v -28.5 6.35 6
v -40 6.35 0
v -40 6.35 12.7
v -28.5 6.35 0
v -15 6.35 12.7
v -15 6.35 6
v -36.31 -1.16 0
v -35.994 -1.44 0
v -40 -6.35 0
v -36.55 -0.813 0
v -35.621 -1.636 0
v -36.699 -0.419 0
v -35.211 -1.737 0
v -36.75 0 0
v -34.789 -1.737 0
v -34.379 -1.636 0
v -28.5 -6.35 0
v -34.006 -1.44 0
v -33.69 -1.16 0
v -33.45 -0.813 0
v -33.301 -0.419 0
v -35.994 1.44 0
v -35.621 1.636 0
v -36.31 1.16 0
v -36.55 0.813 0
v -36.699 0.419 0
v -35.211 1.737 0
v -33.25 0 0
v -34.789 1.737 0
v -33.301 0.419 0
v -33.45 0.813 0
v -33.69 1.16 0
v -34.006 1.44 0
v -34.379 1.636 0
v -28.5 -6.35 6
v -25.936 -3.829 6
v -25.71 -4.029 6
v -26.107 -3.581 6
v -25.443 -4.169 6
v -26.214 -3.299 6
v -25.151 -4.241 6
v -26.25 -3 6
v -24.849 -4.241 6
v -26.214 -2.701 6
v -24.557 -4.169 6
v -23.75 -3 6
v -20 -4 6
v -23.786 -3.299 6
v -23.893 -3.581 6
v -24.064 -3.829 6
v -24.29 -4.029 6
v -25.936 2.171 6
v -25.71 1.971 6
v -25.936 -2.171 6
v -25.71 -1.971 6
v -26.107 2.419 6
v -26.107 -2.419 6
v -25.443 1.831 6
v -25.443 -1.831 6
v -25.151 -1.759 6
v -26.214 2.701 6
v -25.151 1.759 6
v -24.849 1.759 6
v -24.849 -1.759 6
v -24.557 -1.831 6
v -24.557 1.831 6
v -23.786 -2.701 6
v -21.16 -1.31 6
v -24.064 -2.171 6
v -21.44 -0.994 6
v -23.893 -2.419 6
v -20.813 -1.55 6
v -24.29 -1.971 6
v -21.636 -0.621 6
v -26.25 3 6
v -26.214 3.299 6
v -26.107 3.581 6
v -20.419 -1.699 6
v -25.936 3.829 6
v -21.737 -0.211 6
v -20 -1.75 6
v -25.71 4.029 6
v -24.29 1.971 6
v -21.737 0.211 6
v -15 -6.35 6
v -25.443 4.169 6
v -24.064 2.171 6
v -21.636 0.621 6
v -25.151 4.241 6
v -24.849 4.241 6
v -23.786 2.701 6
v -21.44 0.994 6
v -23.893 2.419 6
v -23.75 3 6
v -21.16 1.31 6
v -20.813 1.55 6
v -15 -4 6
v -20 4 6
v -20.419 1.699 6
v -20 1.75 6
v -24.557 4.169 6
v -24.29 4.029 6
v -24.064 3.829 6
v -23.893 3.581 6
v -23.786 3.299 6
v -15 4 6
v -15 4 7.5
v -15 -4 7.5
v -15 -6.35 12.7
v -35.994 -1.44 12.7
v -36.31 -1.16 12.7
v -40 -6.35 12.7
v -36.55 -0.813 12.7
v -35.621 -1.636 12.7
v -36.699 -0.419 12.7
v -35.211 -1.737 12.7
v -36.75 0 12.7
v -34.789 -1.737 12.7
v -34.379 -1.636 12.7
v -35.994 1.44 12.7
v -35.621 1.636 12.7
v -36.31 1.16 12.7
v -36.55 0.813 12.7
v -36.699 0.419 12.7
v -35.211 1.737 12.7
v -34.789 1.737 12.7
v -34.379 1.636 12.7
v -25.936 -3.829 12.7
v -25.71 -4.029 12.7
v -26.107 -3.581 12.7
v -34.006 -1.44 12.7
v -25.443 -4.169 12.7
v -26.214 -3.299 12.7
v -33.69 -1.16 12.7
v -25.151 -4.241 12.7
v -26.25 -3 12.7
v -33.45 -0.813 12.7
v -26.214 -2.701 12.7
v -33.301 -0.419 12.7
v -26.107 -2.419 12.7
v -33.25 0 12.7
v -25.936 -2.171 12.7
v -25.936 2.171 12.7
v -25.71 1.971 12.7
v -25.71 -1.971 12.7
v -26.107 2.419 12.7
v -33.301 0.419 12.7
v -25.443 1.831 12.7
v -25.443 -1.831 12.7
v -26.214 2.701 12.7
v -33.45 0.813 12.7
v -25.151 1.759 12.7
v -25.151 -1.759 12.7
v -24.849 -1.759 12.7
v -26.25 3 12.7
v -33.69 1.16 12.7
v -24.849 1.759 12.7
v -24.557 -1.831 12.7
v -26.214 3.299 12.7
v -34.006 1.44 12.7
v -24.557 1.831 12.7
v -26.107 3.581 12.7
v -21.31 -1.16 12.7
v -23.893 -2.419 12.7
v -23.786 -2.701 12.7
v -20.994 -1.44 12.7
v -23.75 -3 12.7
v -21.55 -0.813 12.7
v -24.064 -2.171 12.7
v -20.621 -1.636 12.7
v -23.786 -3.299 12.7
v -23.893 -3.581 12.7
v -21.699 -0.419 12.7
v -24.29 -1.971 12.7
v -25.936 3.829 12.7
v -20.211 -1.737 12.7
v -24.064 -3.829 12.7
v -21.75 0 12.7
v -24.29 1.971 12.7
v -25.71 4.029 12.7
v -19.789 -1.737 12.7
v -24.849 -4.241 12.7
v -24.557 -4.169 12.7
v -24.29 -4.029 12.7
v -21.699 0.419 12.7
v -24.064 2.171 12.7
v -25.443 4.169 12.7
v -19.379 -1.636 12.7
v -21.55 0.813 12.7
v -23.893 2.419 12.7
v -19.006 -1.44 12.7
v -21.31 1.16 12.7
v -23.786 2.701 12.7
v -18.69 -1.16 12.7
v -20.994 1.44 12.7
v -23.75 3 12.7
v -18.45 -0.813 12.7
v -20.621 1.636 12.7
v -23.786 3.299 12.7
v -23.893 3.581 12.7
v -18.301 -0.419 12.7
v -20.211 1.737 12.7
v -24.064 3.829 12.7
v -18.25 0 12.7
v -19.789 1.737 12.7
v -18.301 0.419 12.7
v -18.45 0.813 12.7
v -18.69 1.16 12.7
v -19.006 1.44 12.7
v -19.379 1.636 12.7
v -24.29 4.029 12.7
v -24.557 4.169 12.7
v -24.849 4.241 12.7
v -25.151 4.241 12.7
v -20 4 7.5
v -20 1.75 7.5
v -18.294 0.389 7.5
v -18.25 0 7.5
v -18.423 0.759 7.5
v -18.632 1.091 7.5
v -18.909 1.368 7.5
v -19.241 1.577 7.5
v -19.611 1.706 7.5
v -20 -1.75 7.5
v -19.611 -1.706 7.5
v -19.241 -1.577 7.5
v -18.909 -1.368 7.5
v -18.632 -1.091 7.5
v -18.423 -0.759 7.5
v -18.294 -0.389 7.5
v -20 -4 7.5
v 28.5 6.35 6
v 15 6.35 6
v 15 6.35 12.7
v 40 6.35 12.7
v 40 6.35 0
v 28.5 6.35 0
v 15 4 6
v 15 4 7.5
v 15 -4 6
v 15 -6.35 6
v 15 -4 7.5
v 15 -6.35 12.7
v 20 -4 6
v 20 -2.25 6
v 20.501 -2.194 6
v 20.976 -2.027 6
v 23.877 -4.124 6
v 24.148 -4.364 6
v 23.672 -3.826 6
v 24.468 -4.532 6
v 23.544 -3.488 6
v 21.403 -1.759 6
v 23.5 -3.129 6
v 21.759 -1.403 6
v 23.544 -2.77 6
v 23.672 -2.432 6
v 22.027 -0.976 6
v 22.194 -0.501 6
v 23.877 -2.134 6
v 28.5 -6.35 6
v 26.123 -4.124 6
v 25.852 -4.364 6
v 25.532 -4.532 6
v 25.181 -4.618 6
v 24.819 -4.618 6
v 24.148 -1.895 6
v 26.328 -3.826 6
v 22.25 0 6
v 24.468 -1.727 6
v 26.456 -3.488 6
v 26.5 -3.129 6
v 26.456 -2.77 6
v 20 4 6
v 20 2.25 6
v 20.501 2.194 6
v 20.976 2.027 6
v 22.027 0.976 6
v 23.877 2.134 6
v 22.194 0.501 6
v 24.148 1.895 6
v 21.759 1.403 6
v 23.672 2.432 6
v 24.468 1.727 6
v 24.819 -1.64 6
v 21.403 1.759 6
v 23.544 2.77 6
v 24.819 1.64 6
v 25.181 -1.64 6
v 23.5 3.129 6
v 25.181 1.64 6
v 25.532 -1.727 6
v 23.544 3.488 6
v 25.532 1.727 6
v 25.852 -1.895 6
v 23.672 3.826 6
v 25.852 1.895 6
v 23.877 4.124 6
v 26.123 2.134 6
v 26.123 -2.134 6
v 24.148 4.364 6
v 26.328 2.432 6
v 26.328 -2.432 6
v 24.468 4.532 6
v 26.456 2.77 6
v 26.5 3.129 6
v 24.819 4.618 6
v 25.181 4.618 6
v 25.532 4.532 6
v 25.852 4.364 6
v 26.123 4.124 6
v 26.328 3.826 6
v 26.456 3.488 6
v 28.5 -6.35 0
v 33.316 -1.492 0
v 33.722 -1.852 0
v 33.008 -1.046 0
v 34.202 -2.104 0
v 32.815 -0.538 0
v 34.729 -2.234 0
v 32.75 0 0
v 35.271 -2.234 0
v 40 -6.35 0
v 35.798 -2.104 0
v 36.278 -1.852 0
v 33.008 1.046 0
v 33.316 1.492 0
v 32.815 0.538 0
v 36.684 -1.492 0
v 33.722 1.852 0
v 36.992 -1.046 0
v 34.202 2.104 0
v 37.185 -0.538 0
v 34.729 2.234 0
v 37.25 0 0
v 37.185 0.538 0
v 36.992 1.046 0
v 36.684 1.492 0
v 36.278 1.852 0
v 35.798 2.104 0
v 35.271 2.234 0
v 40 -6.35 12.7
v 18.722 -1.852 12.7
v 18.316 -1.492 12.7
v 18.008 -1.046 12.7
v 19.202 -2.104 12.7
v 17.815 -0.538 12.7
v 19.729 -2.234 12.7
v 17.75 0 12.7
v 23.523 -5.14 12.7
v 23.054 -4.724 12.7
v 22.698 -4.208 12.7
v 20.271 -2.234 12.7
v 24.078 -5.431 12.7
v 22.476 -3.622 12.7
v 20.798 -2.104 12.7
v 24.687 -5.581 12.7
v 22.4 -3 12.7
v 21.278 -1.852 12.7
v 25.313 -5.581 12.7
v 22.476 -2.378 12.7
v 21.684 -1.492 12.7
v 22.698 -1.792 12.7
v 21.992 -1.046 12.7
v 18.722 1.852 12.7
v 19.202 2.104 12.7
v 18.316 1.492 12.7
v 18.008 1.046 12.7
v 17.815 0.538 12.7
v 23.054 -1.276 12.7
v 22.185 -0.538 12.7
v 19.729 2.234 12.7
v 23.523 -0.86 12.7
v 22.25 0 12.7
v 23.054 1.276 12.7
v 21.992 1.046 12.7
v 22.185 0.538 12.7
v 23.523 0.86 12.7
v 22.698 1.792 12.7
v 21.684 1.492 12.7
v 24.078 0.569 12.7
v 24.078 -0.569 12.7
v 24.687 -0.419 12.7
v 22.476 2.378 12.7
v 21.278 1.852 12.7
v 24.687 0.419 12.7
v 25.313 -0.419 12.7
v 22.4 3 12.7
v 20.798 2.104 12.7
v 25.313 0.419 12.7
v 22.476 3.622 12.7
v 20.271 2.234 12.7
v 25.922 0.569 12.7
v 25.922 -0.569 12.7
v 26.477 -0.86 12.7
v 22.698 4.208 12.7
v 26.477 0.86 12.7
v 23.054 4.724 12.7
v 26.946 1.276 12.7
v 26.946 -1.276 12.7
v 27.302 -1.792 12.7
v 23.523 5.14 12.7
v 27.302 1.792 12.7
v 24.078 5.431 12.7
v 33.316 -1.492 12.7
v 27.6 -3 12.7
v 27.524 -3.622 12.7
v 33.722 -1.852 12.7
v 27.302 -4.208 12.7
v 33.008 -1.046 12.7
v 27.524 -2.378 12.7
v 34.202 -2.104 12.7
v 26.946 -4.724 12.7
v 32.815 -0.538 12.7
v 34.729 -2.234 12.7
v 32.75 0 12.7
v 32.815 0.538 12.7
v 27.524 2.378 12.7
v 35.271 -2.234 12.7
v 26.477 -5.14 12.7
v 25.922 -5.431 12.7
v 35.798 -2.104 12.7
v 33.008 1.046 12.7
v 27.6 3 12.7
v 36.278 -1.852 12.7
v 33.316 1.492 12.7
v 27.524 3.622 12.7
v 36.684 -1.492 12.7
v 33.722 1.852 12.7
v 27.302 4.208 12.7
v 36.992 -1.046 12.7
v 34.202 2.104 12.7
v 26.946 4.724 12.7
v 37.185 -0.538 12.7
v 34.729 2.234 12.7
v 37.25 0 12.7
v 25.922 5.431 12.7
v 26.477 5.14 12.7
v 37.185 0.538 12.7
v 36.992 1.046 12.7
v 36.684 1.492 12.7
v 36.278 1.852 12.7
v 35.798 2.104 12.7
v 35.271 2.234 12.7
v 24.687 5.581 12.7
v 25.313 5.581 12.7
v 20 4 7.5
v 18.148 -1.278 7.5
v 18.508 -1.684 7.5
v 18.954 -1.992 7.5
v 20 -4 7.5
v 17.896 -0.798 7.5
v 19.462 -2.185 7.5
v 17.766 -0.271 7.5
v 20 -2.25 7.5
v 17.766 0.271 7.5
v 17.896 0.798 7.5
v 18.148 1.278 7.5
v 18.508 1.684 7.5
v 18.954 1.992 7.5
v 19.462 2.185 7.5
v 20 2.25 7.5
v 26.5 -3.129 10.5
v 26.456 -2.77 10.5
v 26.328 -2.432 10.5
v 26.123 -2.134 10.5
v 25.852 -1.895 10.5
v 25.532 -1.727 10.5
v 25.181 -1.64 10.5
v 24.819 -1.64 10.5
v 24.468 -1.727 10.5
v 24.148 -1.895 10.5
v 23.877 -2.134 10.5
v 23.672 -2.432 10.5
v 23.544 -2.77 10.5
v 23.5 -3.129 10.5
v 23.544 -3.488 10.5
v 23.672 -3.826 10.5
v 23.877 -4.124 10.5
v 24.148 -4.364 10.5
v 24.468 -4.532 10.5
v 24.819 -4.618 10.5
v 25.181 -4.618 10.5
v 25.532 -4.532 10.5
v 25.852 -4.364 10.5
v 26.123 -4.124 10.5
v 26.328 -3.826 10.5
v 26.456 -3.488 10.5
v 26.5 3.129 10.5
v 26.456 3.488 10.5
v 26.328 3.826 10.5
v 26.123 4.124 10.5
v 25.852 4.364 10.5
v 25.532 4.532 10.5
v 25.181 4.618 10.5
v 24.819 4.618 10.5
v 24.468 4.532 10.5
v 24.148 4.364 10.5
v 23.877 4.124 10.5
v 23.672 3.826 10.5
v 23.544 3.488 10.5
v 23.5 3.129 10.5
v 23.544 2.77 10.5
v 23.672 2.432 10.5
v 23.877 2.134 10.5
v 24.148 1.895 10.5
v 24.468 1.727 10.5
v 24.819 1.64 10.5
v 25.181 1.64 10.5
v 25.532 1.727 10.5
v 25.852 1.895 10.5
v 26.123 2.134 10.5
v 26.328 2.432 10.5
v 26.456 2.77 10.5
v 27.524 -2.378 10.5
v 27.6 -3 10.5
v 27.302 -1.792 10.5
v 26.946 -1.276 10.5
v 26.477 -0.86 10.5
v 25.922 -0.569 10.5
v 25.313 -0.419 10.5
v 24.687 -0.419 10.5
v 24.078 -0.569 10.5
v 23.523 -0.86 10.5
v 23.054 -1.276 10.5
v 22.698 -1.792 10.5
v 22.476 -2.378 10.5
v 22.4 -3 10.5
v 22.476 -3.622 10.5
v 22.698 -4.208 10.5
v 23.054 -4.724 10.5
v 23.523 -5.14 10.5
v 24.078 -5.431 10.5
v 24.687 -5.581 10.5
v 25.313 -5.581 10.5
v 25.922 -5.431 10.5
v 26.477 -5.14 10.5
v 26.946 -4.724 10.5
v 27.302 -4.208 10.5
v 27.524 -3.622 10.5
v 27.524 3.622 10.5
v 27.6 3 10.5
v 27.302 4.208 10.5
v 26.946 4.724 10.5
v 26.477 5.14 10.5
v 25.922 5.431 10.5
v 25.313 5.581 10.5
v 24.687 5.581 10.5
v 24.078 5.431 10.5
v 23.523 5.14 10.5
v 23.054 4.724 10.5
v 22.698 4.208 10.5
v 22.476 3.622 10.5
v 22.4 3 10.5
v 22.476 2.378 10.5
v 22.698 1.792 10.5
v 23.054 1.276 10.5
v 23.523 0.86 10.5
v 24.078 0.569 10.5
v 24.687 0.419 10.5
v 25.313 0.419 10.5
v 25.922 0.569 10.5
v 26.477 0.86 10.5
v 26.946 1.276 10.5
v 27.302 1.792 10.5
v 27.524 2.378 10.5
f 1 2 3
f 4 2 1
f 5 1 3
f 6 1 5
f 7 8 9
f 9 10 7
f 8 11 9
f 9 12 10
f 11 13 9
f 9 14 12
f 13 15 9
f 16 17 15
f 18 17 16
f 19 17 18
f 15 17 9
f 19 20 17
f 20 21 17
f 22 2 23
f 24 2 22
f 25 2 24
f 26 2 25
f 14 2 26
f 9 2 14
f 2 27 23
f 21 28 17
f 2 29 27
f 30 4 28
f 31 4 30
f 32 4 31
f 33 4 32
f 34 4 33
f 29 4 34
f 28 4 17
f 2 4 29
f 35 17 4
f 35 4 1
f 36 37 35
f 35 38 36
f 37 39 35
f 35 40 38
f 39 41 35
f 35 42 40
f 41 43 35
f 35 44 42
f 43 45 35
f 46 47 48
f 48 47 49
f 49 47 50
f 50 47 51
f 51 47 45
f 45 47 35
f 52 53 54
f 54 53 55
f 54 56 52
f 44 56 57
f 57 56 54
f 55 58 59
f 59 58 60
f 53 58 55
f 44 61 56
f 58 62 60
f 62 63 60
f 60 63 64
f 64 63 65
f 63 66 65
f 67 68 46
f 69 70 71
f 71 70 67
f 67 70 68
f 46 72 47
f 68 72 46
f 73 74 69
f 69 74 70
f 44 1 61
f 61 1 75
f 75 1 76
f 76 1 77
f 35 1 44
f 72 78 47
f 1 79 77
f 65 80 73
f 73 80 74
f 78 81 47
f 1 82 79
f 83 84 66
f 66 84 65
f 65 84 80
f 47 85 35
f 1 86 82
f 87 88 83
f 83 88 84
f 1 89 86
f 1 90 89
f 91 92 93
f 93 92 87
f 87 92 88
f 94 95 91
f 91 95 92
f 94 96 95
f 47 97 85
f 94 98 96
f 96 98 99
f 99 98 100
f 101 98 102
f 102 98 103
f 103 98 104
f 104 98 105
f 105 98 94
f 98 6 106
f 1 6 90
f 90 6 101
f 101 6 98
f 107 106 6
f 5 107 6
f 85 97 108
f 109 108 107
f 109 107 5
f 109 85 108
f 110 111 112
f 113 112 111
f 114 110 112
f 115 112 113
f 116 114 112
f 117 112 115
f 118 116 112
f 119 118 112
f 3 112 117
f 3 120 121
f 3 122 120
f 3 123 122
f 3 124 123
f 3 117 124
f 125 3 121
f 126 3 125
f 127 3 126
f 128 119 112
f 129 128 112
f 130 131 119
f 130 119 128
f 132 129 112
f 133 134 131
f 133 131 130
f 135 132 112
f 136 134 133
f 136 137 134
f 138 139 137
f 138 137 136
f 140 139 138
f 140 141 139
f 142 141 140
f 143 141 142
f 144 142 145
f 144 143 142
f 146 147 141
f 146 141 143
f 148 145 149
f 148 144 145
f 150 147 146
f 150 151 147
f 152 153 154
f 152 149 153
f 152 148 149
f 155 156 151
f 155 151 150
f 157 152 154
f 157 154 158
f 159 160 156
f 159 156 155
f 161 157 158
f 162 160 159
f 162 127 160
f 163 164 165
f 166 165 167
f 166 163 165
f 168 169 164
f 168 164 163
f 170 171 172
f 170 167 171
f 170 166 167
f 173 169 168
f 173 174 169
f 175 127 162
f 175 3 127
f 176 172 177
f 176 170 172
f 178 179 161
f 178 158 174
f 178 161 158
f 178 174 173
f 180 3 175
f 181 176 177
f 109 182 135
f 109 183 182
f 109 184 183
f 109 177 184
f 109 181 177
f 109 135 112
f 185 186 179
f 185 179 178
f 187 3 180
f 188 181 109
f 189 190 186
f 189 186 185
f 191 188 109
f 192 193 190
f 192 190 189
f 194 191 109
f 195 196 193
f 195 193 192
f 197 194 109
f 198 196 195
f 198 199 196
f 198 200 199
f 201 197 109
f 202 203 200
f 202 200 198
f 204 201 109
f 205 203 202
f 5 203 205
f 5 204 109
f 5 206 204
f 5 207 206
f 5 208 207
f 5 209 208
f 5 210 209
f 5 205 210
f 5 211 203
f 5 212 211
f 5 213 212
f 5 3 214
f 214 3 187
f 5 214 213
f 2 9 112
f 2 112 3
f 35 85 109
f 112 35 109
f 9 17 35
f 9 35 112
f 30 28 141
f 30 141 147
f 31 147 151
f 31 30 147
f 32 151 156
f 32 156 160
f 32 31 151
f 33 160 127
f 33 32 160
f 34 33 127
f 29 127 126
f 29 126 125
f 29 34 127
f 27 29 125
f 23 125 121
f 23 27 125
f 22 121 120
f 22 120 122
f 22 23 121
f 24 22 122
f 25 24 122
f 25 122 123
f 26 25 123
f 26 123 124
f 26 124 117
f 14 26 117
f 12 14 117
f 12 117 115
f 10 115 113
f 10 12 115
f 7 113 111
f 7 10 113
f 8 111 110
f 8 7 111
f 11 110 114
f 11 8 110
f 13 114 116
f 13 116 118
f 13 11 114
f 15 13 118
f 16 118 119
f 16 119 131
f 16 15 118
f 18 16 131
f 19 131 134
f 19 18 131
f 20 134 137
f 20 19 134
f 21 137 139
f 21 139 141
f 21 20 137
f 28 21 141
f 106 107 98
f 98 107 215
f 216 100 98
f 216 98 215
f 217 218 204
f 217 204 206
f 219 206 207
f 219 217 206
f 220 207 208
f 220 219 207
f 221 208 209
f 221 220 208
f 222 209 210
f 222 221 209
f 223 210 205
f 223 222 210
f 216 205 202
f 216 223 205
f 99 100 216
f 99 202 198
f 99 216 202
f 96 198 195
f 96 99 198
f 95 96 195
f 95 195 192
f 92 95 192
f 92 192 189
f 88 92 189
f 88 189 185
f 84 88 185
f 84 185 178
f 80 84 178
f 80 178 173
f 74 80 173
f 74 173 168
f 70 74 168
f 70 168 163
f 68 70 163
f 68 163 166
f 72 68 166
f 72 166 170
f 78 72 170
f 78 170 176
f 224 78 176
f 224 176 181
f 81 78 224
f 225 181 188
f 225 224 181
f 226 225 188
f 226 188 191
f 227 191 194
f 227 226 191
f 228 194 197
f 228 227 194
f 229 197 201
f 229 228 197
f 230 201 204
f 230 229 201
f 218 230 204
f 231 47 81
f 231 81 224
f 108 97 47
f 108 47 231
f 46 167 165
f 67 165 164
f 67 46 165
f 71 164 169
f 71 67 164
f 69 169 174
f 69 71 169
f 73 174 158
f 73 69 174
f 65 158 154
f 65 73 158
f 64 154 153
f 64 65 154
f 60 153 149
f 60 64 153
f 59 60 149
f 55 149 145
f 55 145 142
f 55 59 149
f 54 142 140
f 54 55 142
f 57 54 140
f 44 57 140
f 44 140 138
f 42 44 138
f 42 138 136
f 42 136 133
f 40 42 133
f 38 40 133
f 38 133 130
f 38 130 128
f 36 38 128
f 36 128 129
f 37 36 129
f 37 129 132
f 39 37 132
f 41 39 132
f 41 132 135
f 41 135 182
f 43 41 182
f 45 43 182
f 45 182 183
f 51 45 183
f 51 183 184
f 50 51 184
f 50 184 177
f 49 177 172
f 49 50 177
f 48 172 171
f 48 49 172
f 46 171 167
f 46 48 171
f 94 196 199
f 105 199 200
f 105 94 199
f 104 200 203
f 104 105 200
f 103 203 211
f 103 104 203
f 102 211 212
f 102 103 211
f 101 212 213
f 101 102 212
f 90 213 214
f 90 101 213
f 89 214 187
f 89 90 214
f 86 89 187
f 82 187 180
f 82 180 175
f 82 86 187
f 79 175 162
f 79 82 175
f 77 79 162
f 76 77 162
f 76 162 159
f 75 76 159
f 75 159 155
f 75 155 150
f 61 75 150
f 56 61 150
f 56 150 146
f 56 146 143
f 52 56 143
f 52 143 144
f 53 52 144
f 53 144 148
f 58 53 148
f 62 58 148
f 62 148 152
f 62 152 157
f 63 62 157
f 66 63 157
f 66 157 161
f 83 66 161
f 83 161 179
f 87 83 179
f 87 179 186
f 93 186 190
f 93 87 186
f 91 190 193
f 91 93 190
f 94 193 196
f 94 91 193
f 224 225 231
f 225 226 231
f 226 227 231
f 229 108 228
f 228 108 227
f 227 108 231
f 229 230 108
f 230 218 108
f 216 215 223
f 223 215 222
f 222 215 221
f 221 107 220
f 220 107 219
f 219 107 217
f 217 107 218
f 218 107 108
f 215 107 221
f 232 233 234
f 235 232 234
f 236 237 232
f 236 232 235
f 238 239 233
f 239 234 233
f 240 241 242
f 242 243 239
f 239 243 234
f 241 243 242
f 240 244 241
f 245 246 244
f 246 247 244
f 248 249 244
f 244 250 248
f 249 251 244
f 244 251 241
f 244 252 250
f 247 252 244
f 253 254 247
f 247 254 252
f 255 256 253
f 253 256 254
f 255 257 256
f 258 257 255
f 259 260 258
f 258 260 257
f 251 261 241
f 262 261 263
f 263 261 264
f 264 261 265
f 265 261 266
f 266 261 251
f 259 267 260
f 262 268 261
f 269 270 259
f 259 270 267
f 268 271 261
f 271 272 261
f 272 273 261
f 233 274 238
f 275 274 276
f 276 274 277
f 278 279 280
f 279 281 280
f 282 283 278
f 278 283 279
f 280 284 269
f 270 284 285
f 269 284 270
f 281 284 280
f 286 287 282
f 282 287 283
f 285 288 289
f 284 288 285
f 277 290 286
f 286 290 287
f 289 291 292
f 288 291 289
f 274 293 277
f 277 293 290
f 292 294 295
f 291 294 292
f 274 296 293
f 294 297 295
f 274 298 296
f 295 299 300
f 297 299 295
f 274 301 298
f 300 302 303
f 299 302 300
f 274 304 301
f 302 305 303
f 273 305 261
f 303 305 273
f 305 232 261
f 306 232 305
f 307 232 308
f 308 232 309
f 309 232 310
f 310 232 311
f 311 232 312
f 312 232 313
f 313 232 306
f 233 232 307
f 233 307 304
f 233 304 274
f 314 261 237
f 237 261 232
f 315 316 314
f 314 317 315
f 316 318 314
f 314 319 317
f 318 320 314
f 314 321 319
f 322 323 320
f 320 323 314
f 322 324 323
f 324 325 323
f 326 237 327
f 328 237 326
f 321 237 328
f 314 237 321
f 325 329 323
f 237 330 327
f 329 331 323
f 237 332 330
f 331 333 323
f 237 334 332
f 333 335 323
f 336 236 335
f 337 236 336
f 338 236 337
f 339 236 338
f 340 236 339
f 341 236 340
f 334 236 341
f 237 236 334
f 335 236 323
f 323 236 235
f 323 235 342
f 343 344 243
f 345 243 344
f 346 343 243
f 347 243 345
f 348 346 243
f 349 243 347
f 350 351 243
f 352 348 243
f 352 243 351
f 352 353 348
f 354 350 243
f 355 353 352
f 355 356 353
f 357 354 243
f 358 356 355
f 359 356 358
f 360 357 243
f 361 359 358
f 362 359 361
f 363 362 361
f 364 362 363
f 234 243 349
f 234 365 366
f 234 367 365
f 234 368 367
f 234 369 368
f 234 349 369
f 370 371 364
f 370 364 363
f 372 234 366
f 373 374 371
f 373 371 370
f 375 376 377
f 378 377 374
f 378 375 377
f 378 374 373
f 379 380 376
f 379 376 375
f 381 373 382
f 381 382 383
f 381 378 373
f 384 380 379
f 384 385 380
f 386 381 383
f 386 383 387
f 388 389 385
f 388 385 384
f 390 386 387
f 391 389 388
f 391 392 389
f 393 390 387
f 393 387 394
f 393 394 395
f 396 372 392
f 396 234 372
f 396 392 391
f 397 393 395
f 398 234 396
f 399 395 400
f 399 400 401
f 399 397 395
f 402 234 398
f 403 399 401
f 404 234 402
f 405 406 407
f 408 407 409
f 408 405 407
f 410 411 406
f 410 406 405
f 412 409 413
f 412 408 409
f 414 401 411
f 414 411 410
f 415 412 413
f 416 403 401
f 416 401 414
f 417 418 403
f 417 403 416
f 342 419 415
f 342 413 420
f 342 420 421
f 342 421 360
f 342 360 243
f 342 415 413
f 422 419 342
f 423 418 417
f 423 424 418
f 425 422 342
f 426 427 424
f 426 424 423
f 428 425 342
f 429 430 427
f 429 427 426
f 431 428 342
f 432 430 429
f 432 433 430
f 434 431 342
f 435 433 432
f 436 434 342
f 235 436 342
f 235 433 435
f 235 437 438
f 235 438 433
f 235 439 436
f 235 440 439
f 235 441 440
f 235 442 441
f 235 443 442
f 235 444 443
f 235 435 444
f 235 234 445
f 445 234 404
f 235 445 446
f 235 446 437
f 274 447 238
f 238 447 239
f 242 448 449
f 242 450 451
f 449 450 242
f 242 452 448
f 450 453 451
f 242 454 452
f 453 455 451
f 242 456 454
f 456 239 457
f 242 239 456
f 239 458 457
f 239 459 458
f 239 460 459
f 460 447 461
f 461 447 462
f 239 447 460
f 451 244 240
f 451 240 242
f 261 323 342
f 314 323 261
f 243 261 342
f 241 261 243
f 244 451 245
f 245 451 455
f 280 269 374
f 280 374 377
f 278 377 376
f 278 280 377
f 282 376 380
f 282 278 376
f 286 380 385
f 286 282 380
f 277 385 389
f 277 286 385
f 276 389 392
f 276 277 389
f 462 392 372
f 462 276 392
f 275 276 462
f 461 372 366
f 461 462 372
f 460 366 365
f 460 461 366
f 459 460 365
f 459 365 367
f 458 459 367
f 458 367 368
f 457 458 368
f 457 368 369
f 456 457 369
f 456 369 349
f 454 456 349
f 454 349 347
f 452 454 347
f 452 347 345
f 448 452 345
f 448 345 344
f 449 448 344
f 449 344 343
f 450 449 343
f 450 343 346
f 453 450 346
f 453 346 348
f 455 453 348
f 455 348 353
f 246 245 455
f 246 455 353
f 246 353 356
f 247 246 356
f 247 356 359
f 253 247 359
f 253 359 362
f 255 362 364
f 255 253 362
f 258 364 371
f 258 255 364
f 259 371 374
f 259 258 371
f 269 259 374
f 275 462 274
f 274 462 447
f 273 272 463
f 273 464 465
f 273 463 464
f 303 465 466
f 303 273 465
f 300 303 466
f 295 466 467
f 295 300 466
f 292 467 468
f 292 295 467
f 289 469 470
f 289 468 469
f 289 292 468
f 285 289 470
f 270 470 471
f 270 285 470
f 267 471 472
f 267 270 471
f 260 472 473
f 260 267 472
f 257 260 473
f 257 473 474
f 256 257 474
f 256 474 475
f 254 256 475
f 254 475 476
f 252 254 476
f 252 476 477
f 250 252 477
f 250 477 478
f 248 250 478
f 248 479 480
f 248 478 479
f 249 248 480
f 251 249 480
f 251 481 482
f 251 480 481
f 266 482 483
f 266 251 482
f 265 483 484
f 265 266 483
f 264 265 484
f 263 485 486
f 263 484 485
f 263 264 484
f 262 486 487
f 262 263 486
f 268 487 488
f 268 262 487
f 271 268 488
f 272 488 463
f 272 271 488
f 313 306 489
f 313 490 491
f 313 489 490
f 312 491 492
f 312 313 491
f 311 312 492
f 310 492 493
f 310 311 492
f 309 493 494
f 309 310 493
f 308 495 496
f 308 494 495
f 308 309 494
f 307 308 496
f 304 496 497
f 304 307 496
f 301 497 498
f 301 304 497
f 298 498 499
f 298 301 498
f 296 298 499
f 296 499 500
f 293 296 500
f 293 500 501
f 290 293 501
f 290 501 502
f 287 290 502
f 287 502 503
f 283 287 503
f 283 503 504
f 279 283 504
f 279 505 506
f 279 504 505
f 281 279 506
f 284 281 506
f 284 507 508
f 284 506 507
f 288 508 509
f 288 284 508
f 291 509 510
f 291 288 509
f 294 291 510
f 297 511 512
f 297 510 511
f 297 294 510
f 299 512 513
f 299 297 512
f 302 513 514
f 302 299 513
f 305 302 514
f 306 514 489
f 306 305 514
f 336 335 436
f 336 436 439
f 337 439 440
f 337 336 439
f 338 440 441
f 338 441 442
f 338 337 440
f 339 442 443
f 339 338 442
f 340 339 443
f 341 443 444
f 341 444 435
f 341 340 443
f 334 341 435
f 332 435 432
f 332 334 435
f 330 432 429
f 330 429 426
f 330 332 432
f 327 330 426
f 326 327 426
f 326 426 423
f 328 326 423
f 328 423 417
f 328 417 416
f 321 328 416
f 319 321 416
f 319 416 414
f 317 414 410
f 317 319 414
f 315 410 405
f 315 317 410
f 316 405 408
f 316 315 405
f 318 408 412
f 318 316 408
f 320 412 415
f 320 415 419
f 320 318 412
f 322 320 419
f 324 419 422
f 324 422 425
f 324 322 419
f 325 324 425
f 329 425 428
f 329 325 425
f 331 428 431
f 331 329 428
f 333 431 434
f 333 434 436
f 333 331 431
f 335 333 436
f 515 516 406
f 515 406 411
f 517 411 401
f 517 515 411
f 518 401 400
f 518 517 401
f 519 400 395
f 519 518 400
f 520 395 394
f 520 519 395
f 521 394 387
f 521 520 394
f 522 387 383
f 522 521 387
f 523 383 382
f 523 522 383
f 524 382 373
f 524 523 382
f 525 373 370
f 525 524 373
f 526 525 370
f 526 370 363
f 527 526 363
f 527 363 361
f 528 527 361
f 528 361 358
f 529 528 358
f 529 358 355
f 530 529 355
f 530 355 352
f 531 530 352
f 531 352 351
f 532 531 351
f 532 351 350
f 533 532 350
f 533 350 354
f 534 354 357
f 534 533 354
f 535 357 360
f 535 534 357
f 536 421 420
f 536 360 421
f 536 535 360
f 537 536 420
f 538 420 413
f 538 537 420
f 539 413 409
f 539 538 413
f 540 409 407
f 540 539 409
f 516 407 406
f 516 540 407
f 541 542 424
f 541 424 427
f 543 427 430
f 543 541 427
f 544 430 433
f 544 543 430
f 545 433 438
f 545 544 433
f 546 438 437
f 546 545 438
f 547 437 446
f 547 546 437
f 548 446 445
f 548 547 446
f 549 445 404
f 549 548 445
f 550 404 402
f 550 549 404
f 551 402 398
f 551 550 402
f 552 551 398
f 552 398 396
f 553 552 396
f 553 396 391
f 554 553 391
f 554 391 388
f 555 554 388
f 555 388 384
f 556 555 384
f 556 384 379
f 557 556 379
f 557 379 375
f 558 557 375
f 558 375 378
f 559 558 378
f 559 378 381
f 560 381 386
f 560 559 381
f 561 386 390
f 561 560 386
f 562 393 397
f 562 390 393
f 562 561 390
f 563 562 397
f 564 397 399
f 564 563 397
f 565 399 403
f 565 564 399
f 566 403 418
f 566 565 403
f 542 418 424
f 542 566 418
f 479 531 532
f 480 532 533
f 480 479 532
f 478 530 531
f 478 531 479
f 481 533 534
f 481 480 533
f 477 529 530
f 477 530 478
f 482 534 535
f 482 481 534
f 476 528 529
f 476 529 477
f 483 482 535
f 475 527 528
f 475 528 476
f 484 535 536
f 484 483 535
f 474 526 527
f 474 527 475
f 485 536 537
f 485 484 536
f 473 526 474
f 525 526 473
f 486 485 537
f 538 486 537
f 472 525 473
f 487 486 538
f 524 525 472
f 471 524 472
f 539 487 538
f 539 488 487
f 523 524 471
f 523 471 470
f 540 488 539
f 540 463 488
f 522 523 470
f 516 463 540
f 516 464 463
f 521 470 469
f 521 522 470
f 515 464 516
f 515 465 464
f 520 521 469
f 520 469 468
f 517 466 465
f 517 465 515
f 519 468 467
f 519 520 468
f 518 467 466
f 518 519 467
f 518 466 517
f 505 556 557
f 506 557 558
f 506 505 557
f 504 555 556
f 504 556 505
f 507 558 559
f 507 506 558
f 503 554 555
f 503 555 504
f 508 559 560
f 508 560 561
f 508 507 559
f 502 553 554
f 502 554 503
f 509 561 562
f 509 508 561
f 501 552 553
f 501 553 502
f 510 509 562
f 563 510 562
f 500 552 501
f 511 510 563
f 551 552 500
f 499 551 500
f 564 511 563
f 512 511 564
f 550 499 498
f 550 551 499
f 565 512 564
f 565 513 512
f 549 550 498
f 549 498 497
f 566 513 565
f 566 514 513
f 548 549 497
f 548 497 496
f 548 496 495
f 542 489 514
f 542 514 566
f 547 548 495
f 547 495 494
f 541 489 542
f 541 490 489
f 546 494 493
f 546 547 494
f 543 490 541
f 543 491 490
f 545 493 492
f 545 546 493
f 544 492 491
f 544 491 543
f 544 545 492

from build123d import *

# Parameters (mm, degrees)
CYLINDER_R        = 2.6
CYLINDER_DEPTH    = 2.5
CYLINDER001_R     = 2.6
CYLINDER001_DEPTH = 2.5
BOX002_W          = 40
BOX002_H          = 8
BOX002_DEPTH      = 1.5
BOX001_W          = 30
BOX001_H          = 15
BOX001_DEPTH      = 15
BOX_W             = 57
BOX_H             = 13
BOX_DEPTH         = 6
SKETCH_W          = 80
SKETCH_H          = 12.7
SKETCH_R          = 2.25
SKETCH_R_2        = 1.75
SKETCH_R_3        = 1.25
SKETCH_R_4        = 1.5
EXTRUDE_DEPTH     = 12.7


with BuildPart() as cylinder:
    # Cylinder → Cylinder (new body)
    with BuildSketch(Plane(origin=(25, 3, 10.5), x_dir=(1, 0, 0), z_dir=(0, 0, 1))):
        Circle(CYLINDER_R)
    extrude(amount=CYLINDER_DEPTH)


with BuildPart() as cylinder001:
    # Cylinder001 → Cylinder001 (new body)
    with BuildSketch(Plane(origin=(25, -3, 10.5), x_dir=(1, 0, 0), z_dir=(0, 0, 1))):
        Circle(CYLINDER001_R)
    extrude(amount=CYLINDER001_DEPTH)


with BuildPart() as cube002:
    # Box002 → Box002 (new body)
    with BuildSketch(Plane(origin=(-20, -4, 6), x_dir=(1, 0, 0), z_dir=(0, 0, 1))):
        with Locations((20, 4)):
            Rectangle(BOX002_W, BOX002_H)
    extrude(amount=BOX002_DEPTH)


with BuildPart() as cube001:
    # Box001 → Box001 (new body)
    with BuildSketch(Plane(origin=(-15, -7, 0), x_dir=(1, 0, 0), z_dir=(0, 0, 1))):
        with Locations((15, 7.5)):
            Rectangle(BOX001_W, BOX001_H)
    extrude(amount=BOX001_DEPTH)


with BuildPart() as cube:
    # Box → Box (new body)
    with BuildSketch(Plane(origin=(-28.5, -6.5, 0), x_dir=(1, 0, 0), z_dir=(0, 0, 1))):
        with Locations((28.5, 6.5)):
            Rectangle(BOX_W, BOX_H)
    extrude(amount=BOX_DEPTH)


with BuildPart() as cut004:
    # Sketch → Extrude (new body)
    with BuildSketch(Plane.XY):
        Rectangle(SKETCH_W, SKETCH_H)
        with Locations((35, 0)):
            Circle(SKETCH_R, mode=Mode.SUBTRACT)
        with Locations((20, 0)):
            Circle(SKETCH_R, mode=Mode.SUBTRACT)
        with Locations((-35, 0)):
            Circle(SKETCH_R_2, mode=Mode.SUBTRACT)
        with Locations((-20, 0)):
            Circle(SKETCH_R_2, mode=Mode.SUBTRACT)
        with Locations((-25, 3)):
            Circle(SKETCH_R_3, mode=Mode.SUBTRACT)
        with Locations((-25, -3)):
            Circle(SKETCH_R_3, mode=Mode.SUBTRACT)
        with Locations((25, 3.129069)):
            Circle(SKETCH_R_4, mode=Mode.SUBTRACT)
        with Locations((25, -3.129069)):
            Circle(SKETCH_R_4, mode=Mode.SUBTRACT)
    extrude(amount=EXTRUDE_DEPTH)

    # Cut: cut Cube
    add(cube.part, mode=Mode.SUBTRACT)

    # Cut001: cut Cube001
    add(cube001.part, mode=Mode.SUBTRACT)

    # Cut002: cut Cube002
    add(cube002.part, mode=Mode.SUBTRACT)

    # Cut003: cut Cylinder001
    add(cylinder001.part, mode=Mode.SUBTRACT)

    # Cut004: cut Cylinder
    add(cylinder.part, mode=Mode.SUBTRACT)


solid = cut004.part
